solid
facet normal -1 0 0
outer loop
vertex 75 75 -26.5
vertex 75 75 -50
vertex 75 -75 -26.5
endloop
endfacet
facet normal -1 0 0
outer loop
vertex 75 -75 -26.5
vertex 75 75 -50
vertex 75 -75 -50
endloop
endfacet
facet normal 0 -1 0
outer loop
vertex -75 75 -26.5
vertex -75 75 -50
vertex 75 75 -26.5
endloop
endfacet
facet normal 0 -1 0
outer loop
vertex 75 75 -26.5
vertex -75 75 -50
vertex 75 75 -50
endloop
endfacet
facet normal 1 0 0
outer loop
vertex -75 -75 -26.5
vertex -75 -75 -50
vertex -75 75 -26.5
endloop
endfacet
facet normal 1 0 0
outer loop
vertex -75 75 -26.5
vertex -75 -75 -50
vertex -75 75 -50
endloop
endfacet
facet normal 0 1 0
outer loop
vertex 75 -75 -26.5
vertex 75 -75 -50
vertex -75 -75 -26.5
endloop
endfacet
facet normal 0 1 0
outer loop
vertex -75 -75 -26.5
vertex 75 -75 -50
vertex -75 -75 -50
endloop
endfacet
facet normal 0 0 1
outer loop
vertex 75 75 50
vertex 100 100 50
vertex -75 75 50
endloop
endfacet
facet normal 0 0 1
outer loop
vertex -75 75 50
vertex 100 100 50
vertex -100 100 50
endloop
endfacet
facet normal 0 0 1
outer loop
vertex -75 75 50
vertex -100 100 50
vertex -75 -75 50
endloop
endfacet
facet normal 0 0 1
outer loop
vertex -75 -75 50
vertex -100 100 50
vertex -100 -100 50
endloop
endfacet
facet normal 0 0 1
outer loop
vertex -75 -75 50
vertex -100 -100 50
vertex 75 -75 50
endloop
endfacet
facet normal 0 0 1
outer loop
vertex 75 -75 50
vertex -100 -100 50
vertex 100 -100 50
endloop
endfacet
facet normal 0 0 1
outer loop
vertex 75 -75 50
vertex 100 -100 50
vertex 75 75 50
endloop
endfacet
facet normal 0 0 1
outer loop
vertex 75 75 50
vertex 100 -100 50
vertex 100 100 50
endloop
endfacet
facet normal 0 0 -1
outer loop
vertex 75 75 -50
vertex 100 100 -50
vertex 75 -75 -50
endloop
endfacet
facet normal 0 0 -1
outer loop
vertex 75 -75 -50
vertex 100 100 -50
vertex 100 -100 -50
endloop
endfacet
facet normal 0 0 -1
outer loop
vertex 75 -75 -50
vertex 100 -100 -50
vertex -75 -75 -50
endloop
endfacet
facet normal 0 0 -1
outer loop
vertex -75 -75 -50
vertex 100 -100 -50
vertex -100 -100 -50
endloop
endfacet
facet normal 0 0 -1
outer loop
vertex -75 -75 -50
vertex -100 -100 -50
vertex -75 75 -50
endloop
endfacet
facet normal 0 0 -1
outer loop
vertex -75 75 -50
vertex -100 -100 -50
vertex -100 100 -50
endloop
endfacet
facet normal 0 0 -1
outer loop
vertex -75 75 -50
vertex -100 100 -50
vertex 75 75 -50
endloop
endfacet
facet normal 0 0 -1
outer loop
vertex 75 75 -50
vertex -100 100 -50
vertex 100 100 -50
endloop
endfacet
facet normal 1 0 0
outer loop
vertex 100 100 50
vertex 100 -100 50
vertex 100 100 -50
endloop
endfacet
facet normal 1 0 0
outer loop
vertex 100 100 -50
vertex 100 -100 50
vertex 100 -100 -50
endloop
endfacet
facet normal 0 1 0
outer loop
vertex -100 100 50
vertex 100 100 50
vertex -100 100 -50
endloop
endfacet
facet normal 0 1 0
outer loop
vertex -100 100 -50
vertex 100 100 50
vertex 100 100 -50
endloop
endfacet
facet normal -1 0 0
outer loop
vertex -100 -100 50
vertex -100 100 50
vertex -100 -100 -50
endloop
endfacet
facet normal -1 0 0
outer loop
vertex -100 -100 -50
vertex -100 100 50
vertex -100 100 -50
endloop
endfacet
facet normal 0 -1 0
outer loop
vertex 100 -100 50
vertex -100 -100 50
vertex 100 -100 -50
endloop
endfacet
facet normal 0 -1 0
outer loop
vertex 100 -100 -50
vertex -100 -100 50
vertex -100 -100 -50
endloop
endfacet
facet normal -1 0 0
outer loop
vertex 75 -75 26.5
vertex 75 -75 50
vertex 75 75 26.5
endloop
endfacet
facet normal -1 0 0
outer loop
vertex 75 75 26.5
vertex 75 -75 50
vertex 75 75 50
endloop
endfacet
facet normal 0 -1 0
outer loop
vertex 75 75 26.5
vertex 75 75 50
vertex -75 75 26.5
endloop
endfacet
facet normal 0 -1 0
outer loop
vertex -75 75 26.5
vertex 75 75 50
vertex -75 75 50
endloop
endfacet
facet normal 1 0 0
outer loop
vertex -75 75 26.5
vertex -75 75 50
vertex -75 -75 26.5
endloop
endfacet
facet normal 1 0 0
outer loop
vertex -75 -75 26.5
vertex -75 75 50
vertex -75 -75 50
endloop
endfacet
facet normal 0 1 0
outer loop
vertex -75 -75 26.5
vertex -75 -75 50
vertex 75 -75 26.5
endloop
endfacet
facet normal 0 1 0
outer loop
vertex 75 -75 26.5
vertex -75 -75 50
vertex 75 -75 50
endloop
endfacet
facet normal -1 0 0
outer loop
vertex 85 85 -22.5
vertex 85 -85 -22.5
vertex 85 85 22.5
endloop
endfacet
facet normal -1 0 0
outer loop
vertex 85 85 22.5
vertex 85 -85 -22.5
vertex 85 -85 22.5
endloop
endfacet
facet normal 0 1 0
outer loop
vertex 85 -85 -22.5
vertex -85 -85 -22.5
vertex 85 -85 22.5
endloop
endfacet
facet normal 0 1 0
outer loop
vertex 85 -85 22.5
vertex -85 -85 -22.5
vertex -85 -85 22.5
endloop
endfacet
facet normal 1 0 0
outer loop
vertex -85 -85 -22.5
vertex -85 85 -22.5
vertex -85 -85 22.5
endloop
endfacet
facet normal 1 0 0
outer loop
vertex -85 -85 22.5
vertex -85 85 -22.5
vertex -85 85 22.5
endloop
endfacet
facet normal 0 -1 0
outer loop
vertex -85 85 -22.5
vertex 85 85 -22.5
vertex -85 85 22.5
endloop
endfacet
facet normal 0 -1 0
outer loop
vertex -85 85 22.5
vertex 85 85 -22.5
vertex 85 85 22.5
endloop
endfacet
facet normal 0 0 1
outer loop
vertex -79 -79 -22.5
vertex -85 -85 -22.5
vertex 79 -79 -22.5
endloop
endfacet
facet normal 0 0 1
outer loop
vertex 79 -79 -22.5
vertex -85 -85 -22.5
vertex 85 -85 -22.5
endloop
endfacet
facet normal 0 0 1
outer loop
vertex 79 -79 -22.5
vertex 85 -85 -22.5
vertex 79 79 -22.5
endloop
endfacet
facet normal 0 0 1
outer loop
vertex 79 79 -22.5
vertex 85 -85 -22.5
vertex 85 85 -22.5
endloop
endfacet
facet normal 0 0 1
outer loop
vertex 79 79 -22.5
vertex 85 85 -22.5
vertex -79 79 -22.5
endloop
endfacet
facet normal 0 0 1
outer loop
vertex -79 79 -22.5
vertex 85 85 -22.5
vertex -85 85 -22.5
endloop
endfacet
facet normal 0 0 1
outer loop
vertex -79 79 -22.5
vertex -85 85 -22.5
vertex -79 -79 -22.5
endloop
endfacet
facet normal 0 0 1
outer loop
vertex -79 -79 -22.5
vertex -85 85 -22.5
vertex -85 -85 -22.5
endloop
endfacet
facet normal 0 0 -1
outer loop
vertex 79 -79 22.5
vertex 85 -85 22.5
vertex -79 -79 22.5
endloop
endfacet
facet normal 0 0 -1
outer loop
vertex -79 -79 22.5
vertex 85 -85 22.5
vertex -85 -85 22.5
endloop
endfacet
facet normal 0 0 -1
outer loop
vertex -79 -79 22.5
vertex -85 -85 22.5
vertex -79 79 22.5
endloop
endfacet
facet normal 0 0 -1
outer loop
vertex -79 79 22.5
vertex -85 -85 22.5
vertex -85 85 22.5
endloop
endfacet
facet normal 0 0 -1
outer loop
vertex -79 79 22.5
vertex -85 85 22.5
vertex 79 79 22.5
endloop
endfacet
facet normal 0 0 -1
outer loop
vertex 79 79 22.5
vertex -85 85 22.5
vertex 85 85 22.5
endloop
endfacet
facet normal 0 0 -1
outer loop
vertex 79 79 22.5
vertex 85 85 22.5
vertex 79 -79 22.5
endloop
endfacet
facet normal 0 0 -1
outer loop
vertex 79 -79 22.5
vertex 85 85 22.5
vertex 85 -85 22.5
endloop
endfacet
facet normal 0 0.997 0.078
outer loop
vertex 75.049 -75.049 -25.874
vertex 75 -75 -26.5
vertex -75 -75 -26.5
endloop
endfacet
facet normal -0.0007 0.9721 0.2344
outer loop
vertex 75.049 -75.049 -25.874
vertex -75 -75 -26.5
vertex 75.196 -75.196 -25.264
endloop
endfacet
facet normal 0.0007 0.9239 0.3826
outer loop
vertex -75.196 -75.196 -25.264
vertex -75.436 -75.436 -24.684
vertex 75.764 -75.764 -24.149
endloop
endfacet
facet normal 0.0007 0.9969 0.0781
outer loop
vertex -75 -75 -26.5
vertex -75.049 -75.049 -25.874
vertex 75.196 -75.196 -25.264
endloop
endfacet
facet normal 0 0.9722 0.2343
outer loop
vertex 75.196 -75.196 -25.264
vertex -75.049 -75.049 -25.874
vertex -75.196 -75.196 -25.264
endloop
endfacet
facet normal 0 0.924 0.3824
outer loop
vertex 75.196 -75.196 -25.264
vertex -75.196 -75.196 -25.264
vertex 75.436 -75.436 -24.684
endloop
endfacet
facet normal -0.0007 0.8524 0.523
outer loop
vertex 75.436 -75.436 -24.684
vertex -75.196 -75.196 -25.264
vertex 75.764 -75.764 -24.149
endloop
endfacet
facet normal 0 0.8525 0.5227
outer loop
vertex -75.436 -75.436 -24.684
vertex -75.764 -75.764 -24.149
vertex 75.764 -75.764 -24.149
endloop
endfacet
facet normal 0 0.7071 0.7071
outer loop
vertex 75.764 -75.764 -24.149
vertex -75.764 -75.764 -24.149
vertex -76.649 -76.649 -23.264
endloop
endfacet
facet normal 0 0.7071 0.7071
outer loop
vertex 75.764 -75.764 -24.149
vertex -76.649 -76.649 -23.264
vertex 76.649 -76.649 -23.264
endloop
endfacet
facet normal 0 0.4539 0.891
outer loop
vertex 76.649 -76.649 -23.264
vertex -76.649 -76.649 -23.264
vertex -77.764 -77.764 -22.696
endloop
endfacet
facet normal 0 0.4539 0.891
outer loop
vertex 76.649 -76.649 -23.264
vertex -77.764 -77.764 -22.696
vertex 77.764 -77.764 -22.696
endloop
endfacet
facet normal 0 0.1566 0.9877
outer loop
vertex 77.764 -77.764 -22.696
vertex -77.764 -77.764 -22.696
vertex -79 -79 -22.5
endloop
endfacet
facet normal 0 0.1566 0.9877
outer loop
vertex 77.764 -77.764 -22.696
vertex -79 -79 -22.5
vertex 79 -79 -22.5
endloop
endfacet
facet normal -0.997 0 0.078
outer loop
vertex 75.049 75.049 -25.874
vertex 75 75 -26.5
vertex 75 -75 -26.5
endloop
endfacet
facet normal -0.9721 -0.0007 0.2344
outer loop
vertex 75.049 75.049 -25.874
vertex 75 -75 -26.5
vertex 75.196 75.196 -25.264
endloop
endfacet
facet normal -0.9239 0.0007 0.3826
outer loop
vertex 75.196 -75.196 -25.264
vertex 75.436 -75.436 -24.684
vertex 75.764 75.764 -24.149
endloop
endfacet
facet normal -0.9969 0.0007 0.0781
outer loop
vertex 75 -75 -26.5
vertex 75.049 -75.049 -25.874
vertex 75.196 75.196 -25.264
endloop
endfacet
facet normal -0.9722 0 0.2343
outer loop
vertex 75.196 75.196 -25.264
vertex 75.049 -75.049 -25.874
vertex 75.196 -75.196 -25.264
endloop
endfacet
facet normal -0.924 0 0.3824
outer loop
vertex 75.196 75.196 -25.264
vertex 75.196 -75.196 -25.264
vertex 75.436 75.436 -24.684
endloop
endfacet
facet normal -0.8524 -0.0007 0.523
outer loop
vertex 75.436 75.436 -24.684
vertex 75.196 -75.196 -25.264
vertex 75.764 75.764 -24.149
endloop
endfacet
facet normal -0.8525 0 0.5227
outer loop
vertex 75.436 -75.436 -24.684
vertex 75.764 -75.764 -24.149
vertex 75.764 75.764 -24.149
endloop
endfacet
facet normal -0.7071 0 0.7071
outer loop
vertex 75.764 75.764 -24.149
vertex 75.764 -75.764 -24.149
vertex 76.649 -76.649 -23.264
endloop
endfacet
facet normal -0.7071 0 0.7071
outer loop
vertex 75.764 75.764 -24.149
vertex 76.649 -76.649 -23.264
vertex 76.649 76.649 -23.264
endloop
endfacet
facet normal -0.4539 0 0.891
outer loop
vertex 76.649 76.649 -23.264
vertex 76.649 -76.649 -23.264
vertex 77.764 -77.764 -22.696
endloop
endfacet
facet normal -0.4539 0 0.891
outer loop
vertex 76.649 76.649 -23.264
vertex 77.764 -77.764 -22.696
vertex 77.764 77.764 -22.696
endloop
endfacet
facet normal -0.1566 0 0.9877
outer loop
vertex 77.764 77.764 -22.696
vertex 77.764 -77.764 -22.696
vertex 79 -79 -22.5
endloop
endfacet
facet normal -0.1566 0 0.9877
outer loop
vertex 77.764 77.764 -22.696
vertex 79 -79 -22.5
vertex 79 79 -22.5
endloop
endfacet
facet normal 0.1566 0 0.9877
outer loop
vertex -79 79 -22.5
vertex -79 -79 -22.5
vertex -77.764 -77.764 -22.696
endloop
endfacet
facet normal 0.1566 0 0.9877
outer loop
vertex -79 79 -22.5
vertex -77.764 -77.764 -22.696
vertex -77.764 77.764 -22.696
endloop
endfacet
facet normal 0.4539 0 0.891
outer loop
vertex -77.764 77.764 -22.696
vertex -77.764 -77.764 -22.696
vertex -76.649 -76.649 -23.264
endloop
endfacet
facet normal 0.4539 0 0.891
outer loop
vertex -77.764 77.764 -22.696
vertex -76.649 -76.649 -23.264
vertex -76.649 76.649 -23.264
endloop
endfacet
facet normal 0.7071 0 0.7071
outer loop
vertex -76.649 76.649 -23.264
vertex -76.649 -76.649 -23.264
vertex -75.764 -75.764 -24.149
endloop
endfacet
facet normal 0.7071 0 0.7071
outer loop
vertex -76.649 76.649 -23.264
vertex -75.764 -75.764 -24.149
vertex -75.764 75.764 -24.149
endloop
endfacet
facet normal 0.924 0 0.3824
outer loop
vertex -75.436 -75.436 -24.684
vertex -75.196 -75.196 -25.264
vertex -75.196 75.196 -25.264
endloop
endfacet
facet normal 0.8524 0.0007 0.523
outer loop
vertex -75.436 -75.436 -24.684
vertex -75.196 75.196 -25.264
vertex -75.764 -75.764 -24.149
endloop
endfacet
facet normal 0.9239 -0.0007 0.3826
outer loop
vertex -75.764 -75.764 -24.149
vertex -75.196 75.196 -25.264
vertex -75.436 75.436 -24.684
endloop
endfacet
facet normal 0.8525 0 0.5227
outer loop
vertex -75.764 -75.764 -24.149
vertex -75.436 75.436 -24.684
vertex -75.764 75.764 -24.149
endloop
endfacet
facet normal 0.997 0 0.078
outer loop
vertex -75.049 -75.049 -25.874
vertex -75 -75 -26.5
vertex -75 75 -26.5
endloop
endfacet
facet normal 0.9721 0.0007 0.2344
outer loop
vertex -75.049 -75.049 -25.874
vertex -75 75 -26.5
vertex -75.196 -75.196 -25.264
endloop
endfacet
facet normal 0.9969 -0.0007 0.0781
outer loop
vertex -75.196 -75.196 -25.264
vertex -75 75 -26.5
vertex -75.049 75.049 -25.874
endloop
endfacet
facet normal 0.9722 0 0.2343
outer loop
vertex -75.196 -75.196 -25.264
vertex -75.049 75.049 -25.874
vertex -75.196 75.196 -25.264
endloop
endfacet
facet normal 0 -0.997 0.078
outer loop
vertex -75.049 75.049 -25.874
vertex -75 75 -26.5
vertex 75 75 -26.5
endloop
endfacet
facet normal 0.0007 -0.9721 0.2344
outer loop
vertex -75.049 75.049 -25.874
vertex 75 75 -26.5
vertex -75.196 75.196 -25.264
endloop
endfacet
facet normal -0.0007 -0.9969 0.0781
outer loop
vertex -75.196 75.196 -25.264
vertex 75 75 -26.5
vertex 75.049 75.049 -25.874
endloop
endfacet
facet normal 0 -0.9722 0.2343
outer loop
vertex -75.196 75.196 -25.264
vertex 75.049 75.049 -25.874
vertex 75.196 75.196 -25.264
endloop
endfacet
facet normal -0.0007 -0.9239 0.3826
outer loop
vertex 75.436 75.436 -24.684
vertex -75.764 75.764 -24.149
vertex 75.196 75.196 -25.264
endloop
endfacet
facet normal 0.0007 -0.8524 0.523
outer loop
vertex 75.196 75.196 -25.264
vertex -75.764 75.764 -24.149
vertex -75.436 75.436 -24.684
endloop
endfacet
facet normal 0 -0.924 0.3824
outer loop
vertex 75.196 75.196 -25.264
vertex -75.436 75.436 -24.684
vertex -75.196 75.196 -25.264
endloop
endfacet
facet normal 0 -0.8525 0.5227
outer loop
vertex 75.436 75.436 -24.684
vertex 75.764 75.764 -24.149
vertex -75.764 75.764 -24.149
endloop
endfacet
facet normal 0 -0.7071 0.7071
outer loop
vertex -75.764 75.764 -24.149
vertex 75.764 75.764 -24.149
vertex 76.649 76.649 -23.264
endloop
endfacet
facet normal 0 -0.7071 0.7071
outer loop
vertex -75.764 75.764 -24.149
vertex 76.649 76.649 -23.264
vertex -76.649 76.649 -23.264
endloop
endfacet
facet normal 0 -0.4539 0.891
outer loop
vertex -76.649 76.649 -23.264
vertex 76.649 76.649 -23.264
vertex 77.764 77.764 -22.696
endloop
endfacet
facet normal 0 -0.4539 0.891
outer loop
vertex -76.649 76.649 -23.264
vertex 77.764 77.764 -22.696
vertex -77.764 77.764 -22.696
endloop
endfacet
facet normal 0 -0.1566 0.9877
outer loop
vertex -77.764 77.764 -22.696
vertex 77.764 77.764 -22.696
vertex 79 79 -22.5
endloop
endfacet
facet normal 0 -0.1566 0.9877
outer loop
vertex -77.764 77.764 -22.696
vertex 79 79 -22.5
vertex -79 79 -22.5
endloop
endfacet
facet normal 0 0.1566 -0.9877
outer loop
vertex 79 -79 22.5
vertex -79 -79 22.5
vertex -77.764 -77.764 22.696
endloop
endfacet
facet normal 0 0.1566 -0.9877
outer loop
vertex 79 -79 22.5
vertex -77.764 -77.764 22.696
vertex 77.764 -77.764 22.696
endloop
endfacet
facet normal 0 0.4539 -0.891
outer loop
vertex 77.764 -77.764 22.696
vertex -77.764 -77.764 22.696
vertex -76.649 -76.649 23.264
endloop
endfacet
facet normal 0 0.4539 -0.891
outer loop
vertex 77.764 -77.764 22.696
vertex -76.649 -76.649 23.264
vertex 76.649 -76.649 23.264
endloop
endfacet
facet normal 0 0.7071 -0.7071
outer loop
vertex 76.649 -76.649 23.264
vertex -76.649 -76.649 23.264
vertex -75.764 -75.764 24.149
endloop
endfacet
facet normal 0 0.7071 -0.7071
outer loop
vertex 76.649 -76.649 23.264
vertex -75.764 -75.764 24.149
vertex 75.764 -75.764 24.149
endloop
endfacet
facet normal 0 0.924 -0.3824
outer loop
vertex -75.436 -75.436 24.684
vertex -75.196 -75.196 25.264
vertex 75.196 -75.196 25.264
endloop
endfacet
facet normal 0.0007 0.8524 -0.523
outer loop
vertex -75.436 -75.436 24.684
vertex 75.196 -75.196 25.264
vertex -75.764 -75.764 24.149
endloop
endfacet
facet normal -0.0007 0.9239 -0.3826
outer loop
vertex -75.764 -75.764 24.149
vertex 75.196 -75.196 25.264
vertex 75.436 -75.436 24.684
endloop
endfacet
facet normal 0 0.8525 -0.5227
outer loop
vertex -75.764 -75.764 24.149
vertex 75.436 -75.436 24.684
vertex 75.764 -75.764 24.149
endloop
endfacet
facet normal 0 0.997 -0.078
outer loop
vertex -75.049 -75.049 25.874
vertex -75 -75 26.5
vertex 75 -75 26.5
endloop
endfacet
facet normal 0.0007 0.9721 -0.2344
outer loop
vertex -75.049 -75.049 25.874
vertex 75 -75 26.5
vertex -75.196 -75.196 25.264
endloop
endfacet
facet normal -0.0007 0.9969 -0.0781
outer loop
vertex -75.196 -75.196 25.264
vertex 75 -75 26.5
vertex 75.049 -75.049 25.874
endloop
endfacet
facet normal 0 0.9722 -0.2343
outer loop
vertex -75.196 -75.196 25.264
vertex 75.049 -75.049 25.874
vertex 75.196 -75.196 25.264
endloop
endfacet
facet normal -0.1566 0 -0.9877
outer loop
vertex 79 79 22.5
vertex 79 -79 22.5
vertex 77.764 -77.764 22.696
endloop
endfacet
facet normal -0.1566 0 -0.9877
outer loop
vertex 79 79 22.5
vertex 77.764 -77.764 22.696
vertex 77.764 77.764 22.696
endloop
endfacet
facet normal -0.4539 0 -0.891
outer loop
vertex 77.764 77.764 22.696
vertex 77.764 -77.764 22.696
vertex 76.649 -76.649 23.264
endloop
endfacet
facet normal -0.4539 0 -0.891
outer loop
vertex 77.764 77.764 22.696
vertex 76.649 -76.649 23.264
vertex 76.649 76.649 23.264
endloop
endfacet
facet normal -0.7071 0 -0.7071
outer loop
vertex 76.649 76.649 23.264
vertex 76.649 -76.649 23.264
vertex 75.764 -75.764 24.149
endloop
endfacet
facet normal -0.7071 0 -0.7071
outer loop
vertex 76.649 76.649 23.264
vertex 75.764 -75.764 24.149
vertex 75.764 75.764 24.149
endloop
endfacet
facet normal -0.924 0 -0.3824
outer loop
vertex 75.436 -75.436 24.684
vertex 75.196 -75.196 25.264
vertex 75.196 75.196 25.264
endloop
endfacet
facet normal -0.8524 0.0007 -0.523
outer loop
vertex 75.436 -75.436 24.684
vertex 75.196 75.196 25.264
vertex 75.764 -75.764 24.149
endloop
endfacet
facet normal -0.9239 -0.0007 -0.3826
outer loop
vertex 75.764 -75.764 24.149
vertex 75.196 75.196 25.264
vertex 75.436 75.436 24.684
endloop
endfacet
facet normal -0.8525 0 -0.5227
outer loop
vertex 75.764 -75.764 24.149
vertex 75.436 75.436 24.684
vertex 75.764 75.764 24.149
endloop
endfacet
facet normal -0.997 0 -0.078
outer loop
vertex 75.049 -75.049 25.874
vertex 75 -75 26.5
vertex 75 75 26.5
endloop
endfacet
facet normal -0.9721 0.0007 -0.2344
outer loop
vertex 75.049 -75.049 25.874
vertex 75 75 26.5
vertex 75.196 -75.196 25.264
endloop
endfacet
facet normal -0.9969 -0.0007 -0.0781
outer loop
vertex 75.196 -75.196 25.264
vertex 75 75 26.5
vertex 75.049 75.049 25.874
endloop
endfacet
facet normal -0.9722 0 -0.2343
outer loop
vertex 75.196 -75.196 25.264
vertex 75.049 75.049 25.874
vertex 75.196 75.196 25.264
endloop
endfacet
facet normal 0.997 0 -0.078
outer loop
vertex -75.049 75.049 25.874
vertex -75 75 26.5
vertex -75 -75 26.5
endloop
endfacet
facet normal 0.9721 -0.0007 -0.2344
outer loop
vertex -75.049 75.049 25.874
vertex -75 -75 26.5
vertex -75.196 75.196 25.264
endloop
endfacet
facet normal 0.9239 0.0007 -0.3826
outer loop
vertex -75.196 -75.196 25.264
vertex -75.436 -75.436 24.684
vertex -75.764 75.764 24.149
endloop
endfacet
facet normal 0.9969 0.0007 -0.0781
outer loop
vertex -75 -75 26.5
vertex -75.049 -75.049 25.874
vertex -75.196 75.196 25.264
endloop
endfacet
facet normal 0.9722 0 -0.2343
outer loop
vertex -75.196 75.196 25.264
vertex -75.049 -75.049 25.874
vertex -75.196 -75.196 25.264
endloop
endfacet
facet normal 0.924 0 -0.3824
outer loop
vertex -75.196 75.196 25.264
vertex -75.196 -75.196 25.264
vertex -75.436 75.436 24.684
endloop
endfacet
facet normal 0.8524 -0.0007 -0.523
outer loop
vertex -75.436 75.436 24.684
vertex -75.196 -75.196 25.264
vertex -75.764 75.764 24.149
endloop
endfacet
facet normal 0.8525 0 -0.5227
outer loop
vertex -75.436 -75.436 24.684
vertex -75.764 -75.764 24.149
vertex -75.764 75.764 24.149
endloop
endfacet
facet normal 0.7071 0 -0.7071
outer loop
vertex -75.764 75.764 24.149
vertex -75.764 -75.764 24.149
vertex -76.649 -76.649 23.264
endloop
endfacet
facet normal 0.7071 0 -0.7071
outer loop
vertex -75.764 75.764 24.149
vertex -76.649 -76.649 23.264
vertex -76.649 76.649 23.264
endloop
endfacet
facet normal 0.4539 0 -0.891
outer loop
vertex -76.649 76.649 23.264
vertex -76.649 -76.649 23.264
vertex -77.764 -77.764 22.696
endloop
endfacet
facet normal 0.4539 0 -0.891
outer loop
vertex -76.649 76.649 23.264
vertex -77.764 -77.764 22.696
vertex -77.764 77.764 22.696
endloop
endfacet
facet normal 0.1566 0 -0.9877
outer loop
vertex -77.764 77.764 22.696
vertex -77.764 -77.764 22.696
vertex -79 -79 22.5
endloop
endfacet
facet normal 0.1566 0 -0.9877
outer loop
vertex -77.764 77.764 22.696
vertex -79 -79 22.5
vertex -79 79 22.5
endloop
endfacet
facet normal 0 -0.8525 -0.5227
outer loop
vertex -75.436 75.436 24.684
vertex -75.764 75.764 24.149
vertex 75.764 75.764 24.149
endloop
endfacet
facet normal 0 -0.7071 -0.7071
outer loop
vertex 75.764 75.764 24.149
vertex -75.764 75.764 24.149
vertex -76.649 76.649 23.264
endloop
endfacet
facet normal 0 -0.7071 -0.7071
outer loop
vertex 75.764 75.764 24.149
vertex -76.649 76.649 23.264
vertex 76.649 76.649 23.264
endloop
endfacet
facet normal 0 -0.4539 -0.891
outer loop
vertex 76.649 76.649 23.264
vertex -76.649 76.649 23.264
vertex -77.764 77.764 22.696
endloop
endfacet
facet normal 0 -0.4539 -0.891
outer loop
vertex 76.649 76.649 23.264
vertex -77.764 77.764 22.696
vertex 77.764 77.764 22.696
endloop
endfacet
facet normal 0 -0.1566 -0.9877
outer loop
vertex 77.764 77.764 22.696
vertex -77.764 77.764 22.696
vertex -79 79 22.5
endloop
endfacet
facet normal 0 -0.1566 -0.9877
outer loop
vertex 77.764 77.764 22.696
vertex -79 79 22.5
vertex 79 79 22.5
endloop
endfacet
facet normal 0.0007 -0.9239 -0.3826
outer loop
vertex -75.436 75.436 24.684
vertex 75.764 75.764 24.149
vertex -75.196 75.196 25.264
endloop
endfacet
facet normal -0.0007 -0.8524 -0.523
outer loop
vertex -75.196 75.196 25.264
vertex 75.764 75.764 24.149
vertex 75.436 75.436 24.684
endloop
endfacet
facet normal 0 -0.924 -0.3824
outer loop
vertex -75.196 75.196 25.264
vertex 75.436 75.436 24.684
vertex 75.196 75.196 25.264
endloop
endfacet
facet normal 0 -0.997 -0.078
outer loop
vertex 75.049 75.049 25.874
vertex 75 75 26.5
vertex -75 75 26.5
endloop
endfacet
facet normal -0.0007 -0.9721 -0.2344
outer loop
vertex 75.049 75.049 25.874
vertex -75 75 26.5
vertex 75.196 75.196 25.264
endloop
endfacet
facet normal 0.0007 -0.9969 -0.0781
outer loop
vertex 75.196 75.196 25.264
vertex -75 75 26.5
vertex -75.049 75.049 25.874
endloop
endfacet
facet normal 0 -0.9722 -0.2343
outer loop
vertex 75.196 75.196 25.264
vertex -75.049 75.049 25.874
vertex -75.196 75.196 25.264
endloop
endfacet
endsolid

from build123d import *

# Parameters (mm, degrees)
SKETCH1_W           = 200
SKETCH1_H           = 200
SKETCH1_W_2         = 150
SKETCH1_H_2         = 150
BOSS_EXTRUDE1_DEPTH = 50
SKETCH2_W           = 170
SKETCH2_H           = 170
CUT_EXTRUDE1_DEPTH  = 22.5
FILLET1_R           = 4
FILLET2_R           = 4


with BuildPart() as part:
    # Sketch1 → Boss-Extrude1 (new, symmetric)
    with BuildSketch(Plane.XY):
        Rectangle(SKETCH1_W, SKETCH1_H)
        Rectangle(SKETCH1_W_2, SKETCH1_H_2, mode=Mode.SUBTRACT)
    extrude(amount=BOSS_EXTRUDE1_DEPTH, both=True)

    # Sketch2 → Cut-Extrude1 (cut, symmetric)
    with BuildSketch(Plane.XY):
        Rectangle(SKETCH2_W, SKETCH2_H)
    extrude(amount=CUT_EXTRUDE1_DEPTH, both=True, mode=Mode.SUBTRACT)

    # Fillet1
    fillet1_edges = [part.edges().sort_by_distance(p)[0] for p in [
        (0, -75, -22.5),
        (75, 0, -22.5),
        (0, 75, -22.5),
        (-75, 0, -22.5),
    ]]
    fillet(fillet1_edges, radius=FILLET1_R)

    # Fillet2
    fillet2_edges = [part.edges().sort_by_distance(p)[0] for p in [
        (0, -75, 22.5),
        (75, 0, 22.5),
        (0, 75, 22.5),
        (-75, 0, 22.5),
    ]]
    fillet(fillet2_edges, radius=FILLET2_R)


solid = part.part
